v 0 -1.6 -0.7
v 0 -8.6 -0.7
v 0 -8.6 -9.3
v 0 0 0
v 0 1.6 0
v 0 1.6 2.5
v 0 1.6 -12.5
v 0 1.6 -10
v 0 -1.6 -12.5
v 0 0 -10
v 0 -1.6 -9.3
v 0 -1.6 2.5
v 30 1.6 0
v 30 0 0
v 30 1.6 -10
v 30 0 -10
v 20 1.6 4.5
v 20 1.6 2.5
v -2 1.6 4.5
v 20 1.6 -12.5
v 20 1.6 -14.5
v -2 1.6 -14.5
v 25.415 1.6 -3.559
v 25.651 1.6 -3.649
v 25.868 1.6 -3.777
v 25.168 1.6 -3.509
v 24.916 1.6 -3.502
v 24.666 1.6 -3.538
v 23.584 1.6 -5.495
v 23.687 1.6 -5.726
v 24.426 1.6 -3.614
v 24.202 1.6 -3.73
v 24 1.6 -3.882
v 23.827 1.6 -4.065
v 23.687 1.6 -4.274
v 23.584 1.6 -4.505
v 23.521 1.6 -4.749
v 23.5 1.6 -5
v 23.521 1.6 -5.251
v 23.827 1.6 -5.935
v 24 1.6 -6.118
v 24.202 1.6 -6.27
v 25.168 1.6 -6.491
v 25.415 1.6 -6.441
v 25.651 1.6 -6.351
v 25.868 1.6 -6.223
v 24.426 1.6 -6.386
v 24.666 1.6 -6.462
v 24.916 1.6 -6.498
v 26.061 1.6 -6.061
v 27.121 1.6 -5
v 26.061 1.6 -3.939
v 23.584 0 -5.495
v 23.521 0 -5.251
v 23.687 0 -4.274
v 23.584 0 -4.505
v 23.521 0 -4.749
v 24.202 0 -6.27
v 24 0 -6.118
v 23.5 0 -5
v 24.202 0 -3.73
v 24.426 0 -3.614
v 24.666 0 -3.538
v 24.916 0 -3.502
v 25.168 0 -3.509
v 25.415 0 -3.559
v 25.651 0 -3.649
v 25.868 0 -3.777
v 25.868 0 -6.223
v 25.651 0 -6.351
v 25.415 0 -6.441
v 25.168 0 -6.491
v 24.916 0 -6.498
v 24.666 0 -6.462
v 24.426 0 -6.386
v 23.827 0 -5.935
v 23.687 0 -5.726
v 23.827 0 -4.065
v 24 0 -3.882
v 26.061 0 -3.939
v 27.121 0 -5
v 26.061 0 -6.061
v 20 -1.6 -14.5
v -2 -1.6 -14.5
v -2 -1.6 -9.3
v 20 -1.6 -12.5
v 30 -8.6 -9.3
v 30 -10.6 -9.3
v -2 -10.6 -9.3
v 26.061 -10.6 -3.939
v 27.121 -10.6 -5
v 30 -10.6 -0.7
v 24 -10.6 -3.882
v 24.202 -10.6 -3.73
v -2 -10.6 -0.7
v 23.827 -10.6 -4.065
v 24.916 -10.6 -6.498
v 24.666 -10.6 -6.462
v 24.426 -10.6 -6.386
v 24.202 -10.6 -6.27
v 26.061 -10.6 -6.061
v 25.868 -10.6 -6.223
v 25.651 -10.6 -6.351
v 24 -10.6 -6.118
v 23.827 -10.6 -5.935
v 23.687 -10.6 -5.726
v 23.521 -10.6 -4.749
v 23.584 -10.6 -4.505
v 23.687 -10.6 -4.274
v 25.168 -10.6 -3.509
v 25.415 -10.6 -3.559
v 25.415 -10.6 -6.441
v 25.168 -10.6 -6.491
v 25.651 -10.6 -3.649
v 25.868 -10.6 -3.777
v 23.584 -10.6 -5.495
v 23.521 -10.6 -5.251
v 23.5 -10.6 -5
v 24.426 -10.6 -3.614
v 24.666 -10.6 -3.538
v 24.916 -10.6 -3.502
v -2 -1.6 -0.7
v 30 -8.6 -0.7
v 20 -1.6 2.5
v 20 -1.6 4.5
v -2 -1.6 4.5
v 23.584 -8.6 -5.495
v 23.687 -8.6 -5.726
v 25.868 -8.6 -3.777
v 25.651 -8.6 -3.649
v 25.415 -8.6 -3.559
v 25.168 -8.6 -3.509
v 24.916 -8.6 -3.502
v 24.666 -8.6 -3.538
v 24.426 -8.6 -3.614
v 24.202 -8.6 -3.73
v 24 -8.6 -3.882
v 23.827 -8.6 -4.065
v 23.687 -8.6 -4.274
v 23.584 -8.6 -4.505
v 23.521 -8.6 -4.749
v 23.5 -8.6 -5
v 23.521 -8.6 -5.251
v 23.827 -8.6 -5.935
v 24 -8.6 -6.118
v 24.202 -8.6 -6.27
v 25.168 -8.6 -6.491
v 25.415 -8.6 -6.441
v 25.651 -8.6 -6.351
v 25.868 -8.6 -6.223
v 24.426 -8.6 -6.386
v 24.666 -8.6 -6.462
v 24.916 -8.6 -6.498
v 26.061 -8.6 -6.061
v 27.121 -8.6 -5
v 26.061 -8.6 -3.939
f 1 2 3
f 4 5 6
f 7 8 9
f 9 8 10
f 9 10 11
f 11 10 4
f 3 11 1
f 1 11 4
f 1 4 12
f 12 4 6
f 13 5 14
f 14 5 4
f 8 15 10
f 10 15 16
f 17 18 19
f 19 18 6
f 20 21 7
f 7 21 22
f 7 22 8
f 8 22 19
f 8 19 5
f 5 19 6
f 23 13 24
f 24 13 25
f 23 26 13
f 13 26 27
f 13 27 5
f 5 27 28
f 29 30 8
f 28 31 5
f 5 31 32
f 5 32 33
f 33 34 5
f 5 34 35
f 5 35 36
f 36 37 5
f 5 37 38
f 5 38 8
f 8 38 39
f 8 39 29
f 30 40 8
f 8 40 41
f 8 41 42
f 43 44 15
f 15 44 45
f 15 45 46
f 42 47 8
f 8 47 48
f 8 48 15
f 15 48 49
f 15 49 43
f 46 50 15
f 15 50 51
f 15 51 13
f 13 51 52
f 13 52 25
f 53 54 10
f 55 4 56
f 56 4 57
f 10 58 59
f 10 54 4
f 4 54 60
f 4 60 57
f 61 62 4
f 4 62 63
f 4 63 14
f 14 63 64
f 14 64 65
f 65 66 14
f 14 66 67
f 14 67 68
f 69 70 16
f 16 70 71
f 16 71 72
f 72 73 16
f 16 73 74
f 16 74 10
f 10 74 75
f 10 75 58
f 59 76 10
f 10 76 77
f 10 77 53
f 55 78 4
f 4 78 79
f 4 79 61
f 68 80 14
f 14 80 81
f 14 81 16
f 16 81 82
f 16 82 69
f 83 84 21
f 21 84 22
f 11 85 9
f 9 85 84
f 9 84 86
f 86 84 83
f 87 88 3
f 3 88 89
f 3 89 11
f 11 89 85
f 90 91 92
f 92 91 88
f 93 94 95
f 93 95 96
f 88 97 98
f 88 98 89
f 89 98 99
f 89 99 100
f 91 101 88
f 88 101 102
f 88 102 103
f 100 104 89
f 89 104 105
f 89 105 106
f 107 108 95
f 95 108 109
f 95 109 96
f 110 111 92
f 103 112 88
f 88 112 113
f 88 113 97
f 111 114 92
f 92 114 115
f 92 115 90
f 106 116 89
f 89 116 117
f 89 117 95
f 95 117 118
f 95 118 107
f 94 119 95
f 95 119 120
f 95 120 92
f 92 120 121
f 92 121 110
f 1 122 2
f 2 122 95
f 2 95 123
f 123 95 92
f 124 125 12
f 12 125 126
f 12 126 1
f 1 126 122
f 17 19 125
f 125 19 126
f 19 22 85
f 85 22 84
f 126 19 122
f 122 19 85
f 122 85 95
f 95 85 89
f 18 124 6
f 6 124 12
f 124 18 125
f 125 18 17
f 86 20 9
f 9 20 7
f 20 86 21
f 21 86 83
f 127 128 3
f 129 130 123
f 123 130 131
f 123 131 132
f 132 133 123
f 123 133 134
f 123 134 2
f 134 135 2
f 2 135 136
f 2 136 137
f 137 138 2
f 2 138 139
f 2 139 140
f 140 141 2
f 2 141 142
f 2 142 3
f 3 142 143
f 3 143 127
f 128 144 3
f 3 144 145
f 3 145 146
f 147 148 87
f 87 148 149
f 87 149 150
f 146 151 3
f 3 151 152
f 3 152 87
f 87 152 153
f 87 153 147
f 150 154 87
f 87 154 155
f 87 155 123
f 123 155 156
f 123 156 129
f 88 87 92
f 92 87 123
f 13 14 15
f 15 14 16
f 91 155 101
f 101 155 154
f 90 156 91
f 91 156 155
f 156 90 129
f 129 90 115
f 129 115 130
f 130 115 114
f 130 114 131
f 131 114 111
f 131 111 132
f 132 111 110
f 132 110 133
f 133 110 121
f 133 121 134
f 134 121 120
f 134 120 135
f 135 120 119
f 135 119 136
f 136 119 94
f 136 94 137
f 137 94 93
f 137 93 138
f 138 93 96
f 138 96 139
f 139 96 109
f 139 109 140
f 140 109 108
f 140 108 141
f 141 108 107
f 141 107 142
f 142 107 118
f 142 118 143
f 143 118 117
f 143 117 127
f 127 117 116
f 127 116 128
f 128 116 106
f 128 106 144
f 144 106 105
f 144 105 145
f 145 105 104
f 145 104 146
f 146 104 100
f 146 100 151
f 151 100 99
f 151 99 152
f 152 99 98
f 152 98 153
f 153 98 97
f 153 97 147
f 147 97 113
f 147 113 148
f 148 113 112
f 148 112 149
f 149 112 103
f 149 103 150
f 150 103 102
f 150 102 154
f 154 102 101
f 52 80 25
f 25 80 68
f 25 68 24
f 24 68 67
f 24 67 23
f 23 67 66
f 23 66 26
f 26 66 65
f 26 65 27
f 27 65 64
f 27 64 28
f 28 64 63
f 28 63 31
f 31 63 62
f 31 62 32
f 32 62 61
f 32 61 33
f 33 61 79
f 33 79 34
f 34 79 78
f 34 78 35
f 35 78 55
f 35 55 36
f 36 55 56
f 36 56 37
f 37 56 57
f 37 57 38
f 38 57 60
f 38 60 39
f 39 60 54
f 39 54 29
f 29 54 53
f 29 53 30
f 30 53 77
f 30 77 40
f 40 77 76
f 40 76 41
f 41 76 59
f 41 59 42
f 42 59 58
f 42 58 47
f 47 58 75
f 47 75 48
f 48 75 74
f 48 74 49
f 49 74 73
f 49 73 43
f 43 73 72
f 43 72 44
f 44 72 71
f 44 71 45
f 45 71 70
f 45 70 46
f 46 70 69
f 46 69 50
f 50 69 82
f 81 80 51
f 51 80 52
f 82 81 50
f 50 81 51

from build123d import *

# Parameters (mm, degrees)
SKETCH_1_W          = 20
SKETCH_1_H          = 10
EXTRUDE_1_DEPTH     = 1.6
EXTRUDE_2_DEPTH     = 2
SKETCH_3_W          = 2
SKETCH_3_H          = 3.2
SKETCH_3_W_2        = 8.6
SKETCH_3_H_2        = 2
EXTRUDE_3_DEPTH     = 20
SKETCH_4_W          = 8.6
SKETCH_4_H          = 2
SKETCH_4_W_2        = 10
SKETCH_4_H_2        = 1.6
EXTRUDE_4_DEPTH     = 10
CUT_EXTRUDE_3_DEPTH = 15


with BuildPart() as part:
    # Эскиз1 → Бобышка-Вытянуть1 (new body)
    with BuildSketch(Plane(origin=(0, 0, 0), x_dir=(1, 0, 0), z_dir=(0, 1, 0))):
        with Locations((10, 5)):
            Rectangle(SKETCH_1_W, SKETCH_1_H)
    extrude(amount=EXTRUDE_1_DEPTH)

    # Эскиз2 → Бобышка-Вытянуть2 (add)
    with BuildSketch(Plane.ZY):
        Polygon((-14.5, 1.6), (4.5, 1.6), (4.5, -1.6), (-0.7, -1.6), (-0.7, -10.6), (-9.3, -10.6), (-9.3, -1.6), (-14.5, -1.6), align=None)
    extrude(amount=EXTRUDE_2_DEPTH)

    # Эскиз3 → Бобышка-Вытянуть3 (add)
    with BuildSketch(Plane(origin=(0, 0, 0), x_dir=(0, 0, -1), z_dir=(1, 0, 0))):
        with Locations((-3.5, 0)):
            Rectangle(SKETCH_3_W, SKETCH_3_H)
        with Locations((13.5, 0)):
            Rectangle(SKETCH_3_W, SKETCH_3_H)
        with Locations((5, -9.6)):
            Rectangle(SKETCH_3_W_2, SKETCH_3_H_2)
    extrude(amount=EXTRUDE_3_DEPTH)

    # Эскиз4 → Бобышка-Вытянуть4 (add)
    with BuildSketch(Plane(origin=(20, 0, 0), x_dir=(0, 0, -1), z_dir=(1, 0, 0))):
        with Locations((5, -9.6)):
            Rectangle(SKETCH_4_W, SKETCH_4_H)
        with Locations((5, 0.8)):
            Rectangle(SKETCH_4_W_2, SKETCH_4_H_2)
    extrude(amount=EXTRUDE_4_DEPTH)

    # Эскиз5 → Вырез-Вытянуть3 (cut)
    with BuildSketch(Plane.XZ.offset(10.6)):
        with BuildLine():
            Line((26.060660172, -6.060660172), (27.121320344, -5))
            Line((27.121320344, -5), (26.060660172, -3.939339828))
            ThreePointArc((26.060660172, -3.939339828), (23.5, -5), (26.060660172, -6.060660172))
        make_face()
    extrude(amount=-CUT_EXTRUDE_3_DEPTH, mode=Mode.SUBTRACT)


solid = part.part
